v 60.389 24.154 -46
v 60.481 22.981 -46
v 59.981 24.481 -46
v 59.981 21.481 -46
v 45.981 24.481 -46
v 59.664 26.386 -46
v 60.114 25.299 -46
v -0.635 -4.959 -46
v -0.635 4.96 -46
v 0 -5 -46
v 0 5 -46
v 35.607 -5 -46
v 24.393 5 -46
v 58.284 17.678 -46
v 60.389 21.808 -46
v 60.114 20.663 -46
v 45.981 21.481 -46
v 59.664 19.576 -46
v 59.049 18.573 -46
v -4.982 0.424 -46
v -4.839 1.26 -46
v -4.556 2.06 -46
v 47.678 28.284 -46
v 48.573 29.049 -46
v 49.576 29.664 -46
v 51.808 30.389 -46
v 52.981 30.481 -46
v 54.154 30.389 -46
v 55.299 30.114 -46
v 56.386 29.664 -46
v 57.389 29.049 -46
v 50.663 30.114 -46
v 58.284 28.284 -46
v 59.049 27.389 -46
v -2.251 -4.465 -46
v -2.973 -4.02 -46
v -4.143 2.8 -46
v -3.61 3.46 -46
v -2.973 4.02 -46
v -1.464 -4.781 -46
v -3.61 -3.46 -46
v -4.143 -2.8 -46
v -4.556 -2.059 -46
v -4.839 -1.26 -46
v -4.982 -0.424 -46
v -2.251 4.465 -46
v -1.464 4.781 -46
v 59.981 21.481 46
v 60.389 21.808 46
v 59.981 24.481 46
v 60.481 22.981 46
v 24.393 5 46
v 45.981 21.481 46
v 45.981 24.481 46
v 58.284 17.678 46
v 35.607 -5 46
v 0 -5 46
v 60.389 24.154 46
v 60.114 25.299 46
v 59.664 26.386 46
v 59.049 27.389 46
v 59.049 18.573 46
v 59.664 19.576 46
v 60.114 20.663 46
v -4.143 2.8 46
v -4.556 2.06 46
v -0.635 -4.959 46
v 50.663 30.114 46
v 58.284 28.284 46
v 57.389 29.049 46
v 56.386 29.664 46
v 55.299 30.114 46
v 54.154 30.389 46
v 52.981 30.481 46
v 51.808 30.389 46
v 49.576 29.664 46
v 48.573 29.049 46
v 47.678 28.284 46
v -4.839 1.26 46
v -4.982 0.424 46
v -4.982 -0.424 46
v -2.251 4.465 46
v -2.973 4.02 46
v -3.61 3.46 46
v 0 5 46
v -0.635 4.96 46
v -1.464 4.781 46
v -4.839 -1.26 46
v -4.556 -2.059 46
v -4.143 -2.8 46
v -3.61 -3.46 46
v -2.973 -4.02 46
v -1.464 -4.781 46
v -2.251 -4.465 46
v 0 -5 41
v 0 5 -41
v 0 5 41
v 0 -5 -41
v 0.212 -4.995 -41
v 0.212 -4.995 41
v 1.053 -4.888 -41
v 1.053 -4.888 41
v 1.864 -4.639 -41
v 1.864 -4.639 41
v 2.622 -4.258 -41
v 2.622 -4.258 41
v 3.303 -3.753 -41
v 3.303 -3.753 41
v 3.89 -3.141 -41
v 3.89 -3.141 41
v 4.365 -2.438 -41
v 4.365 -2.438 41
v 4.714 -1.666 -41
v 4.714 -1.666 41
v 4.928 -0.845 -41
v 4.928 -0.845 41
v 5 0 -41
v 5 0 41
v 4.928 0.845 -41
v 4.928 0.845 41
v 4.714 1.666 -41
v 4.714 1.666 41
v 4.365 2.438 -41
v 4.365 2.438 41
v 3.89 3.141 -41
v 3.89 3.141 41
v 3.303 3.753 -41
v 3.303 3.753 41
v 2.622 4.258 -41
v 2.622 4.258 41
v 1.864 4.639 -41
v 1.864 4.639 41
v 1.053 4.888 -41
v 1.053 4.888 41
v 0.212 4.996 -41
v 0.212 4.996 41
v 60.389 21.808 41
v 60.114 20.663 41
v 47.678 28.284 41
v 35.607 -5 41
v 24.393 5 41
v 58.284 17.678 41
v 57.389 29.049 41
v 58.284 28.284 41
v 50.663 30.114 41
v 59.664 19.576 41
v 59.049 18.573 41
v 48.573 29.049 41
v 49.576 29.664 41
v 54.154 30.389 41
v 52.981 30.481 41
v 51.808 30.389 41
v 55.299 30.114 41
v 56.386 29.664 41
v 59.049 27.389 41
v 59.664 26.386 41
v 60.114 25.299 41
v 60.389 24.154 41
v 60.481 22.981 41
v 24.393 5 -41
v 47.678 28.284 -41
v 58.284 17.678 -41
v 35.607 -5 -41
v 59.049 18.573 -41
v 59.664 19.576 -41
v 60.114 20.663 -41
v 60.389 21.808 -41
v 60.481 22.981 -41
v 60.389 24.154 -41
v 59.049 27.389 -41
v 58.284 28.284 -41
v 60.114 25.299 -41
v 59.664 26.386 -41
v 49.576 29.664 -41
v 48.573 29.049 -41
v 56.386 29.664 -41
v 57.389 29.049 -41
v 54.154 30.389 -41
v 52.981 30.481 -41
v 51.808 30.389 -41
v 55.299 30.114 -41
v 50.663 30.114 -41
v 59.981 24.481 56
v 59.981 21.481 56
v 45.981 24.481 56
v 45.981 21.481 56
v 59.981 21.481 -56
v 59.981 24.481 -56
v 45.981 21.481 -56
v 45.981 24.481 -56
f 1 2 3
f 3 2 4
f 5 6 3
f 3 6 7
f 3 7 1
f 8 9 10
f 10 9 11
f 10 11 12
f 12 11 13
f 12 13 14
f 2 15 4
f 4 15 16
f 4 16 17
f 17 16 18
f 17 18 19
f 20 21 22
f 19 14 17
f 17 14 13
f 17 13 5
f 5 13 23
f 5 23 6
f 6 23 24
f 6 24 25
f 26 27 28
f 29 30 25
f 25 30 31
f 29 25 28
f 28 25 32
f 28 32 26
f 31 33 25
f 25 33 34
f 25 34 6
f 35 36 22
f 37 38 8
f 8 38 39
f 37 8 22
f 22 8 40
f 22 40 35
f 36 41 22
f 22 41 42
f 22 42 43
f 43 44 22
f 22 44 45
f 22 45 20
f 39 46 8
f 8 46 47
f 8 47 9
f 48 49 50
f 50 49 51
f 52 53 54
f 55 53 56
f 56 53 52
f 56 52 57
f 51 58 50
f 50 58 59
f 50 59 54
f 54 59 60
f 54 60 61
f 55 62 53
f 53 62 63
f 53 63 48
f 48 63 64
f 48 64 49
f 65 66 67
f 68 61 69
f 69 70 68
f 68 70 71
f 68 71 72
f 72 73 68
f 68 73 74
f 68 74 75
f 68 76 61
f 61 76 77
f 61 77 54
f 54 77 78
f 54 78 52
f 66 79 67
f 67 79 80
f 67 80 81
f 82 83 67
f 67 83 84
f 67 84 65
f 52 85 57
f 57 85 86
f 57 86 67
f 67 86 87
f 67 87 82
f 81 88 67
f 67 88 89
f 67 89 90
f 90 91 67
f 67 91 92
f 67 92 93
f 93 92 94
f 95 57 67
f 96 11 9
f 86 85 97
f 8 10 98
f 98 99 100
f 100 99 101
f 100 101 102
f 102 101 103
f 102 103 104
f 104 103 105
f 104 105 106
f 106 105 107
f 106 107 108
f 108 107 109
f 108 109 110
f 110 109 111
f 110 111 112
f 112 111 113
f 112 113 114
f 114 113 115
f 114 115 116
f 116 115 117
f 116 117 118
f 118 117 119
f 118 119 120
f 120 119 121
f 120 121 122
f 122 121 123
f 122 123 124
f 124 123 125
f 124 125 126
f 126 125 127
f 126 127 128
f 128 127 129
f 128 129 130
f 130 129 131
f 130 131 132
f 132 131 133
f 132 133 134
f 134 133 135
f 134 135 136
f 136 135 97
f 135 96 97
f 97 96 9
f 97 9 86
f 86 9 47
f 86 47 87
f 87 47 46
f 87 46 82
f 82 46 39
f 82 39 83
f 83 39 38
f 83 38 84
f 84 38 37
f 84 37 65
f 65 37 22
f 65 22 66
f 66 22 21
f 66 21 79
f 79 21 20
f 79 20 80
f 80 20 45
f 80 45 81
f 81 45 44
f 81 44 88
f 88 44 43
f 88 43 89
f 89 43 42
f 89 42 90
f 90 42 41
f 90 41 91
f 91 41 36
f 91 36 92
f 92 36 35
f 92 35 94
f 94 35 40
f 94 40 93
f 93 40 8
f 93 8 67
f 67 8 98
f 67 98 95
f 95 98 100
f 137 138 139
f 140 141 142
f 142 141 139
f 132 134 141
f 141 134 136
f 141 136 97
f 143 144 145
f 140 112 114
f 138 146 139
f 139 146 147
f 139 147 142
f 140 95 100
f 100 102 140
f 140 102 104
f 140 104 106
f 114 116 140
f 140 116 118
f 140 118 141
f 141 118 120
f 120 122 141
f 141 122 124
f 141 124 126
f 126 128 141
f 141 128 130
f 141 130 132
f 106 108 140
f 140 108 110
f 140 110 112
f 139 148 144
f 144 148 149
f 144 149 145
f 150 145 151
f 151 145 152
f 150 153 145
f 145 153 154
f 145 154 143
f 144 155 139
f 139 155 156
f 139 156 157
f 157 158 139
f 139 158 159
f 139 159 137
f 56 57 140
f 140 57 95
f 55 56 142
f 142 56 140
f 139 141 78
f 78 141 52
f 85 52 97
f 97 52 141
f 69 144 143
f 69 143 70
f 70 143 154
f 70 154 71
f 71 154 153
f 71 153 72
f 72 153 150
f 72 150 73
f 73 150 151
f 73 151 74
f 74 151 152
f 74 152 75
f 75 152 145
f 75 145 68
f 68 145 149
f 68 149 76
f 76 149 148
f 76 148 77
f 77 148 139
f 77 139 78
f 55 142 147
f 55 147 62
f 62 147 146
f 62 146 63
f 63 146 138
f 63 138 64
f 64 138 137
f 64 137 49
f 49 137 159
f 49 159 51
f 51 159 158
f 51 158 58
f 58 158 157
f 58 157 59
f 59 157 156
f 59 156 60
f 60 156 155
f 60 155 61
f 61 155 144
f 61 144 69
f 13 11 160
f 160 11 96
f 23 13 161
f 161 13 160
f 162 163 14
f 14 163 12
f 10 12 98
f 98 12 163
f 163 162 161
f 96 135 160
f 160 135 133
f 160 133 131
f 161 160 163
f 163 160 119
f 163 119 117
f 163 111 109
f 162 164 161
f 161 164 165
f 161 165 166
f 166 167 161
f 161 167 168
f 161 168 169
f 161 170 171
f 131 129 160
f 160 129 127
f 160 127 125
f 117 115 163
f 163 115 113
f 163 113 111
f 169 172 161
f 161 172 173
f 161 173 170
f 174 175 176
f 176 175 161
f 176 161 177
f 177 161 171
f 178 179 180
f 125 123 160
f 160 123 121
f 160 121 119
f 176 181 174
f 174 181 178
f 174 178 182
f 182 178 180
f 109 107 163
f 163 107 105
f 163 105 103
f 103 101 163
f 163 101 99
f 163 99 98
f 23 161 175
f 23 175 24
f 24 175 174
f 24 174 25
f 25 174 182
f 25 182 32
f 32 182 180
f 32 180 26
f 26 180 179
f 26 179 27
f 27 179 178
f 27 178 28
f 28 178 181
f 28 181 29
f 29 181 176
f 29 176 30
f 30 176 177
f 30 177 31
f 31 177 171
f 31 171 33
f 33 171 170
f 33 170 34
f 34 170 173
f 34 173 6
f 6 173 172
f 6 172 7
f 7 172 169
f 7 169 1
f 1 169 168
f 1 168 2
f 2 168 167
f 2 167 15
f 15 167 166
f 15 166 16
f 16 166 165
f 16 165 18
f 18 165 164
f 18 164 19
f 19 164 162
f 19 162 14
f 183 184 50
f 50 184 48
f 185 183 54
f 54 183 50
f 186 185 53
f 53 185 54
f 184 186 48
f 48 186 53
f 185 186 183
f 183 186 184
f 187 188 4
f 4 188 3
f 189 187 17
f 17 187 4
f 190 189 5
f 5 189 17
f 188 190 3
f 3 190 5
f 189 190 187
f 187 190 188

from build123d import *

# Parameters (mm, degrees)
EXTRUDE_1_DEPTH        = 41
EXTRUDE_1_DEPTH_BACK   = 41
SKETCH_1_R             = 5
EXTRUDE_2_DEPTH        = 5
FILLET_1_R             = 7.5
FILLET_1_OF_MIRROR_1_R = 7.5
SKETCH_3_W             = 14
SKETCH_3_H             = 3
EXTRUDE_3_DEPTH        = 10


with BuildPart() as part:
    # 草图1 → 凸台-拉伸1 (new, two sides: drawn at the far end of the back side and taken through both)
    with BuildSketch(Plane.XY.offset(-EXTRUDE_1_DEPTH_BACK)):
        Circle(SKETCH_1_R)
    extrude(amount=EXTRUDE_1_DEPTH + EXTRUDE_1_DEPTH_BACK)

    # 草图2 → 凸台-拉伸2 (add)
    with BuildSketch(Plane.XY.offset(41)):
        with BuildLine():
            Line((0, 5), (24.393398282, 5))
            Line((24.393398282, 5), (52.980970389, 33.587572106))
            Line((52.980970389, 33.587572106), (63.587572106, 22.980970389))
            Line((63.587572106, 22.980970389), (35.606601718, -5))
            Line((35.606601718, -5), (0, -5))
            ThreePointArc((0, -5), (-5, 0), (0, 5))
        make_face()
    extrude_2 = extrude(amount=EXTRUDE_2_DEPTH)

    # 圆角1
    fillet_1_edges = [part.edges().sort_by_distance(p)[0] for p in [
        (63.587572106, 22.980970389, 43.5),
        (52.980970389, 33.587572106, 43.5),
    ]]
    fillet(fillet_1_edges, radius=FILLET_1_R - 0.0001)  # a hair under: the kernel refuses the full size

    # 镜向1: 凸台-拉伸2 across plane
    add(extrude_2.mirror(Plane.XY))

    # 圆角1 of 镜向1
    fillet_1_of_mirror_1_edges = [part.edges().sort_by_distance(p)[0] for p in [
        (63.587572106, 22.980970389, -43.5),
        (52.980970389, 33.587572106, -43.5),
    ]]
    fillet(fillet_1_of_mirror_1_edges, radius=FILLET_1_OF_MIRROR_1_R - 0.0001)  # a hair under: the kernel refuses the full size

    # 草图3 → 凸台-拉伸3 (add)
    with BuildSketch(Plane.XY.offset(46)):
        with Locations((52.980970389, 22.980970389)):
            Rectangle(SKETCH_3_W, SKETCH_3_H)
    extrude_3 = extrude(amount=EXTRUDE_3_DEPTH)

    # 镜向2: 凸台-拉伸3 across plane
    add(extrude_3.mirror(Plane.XY))


solid = part.part
